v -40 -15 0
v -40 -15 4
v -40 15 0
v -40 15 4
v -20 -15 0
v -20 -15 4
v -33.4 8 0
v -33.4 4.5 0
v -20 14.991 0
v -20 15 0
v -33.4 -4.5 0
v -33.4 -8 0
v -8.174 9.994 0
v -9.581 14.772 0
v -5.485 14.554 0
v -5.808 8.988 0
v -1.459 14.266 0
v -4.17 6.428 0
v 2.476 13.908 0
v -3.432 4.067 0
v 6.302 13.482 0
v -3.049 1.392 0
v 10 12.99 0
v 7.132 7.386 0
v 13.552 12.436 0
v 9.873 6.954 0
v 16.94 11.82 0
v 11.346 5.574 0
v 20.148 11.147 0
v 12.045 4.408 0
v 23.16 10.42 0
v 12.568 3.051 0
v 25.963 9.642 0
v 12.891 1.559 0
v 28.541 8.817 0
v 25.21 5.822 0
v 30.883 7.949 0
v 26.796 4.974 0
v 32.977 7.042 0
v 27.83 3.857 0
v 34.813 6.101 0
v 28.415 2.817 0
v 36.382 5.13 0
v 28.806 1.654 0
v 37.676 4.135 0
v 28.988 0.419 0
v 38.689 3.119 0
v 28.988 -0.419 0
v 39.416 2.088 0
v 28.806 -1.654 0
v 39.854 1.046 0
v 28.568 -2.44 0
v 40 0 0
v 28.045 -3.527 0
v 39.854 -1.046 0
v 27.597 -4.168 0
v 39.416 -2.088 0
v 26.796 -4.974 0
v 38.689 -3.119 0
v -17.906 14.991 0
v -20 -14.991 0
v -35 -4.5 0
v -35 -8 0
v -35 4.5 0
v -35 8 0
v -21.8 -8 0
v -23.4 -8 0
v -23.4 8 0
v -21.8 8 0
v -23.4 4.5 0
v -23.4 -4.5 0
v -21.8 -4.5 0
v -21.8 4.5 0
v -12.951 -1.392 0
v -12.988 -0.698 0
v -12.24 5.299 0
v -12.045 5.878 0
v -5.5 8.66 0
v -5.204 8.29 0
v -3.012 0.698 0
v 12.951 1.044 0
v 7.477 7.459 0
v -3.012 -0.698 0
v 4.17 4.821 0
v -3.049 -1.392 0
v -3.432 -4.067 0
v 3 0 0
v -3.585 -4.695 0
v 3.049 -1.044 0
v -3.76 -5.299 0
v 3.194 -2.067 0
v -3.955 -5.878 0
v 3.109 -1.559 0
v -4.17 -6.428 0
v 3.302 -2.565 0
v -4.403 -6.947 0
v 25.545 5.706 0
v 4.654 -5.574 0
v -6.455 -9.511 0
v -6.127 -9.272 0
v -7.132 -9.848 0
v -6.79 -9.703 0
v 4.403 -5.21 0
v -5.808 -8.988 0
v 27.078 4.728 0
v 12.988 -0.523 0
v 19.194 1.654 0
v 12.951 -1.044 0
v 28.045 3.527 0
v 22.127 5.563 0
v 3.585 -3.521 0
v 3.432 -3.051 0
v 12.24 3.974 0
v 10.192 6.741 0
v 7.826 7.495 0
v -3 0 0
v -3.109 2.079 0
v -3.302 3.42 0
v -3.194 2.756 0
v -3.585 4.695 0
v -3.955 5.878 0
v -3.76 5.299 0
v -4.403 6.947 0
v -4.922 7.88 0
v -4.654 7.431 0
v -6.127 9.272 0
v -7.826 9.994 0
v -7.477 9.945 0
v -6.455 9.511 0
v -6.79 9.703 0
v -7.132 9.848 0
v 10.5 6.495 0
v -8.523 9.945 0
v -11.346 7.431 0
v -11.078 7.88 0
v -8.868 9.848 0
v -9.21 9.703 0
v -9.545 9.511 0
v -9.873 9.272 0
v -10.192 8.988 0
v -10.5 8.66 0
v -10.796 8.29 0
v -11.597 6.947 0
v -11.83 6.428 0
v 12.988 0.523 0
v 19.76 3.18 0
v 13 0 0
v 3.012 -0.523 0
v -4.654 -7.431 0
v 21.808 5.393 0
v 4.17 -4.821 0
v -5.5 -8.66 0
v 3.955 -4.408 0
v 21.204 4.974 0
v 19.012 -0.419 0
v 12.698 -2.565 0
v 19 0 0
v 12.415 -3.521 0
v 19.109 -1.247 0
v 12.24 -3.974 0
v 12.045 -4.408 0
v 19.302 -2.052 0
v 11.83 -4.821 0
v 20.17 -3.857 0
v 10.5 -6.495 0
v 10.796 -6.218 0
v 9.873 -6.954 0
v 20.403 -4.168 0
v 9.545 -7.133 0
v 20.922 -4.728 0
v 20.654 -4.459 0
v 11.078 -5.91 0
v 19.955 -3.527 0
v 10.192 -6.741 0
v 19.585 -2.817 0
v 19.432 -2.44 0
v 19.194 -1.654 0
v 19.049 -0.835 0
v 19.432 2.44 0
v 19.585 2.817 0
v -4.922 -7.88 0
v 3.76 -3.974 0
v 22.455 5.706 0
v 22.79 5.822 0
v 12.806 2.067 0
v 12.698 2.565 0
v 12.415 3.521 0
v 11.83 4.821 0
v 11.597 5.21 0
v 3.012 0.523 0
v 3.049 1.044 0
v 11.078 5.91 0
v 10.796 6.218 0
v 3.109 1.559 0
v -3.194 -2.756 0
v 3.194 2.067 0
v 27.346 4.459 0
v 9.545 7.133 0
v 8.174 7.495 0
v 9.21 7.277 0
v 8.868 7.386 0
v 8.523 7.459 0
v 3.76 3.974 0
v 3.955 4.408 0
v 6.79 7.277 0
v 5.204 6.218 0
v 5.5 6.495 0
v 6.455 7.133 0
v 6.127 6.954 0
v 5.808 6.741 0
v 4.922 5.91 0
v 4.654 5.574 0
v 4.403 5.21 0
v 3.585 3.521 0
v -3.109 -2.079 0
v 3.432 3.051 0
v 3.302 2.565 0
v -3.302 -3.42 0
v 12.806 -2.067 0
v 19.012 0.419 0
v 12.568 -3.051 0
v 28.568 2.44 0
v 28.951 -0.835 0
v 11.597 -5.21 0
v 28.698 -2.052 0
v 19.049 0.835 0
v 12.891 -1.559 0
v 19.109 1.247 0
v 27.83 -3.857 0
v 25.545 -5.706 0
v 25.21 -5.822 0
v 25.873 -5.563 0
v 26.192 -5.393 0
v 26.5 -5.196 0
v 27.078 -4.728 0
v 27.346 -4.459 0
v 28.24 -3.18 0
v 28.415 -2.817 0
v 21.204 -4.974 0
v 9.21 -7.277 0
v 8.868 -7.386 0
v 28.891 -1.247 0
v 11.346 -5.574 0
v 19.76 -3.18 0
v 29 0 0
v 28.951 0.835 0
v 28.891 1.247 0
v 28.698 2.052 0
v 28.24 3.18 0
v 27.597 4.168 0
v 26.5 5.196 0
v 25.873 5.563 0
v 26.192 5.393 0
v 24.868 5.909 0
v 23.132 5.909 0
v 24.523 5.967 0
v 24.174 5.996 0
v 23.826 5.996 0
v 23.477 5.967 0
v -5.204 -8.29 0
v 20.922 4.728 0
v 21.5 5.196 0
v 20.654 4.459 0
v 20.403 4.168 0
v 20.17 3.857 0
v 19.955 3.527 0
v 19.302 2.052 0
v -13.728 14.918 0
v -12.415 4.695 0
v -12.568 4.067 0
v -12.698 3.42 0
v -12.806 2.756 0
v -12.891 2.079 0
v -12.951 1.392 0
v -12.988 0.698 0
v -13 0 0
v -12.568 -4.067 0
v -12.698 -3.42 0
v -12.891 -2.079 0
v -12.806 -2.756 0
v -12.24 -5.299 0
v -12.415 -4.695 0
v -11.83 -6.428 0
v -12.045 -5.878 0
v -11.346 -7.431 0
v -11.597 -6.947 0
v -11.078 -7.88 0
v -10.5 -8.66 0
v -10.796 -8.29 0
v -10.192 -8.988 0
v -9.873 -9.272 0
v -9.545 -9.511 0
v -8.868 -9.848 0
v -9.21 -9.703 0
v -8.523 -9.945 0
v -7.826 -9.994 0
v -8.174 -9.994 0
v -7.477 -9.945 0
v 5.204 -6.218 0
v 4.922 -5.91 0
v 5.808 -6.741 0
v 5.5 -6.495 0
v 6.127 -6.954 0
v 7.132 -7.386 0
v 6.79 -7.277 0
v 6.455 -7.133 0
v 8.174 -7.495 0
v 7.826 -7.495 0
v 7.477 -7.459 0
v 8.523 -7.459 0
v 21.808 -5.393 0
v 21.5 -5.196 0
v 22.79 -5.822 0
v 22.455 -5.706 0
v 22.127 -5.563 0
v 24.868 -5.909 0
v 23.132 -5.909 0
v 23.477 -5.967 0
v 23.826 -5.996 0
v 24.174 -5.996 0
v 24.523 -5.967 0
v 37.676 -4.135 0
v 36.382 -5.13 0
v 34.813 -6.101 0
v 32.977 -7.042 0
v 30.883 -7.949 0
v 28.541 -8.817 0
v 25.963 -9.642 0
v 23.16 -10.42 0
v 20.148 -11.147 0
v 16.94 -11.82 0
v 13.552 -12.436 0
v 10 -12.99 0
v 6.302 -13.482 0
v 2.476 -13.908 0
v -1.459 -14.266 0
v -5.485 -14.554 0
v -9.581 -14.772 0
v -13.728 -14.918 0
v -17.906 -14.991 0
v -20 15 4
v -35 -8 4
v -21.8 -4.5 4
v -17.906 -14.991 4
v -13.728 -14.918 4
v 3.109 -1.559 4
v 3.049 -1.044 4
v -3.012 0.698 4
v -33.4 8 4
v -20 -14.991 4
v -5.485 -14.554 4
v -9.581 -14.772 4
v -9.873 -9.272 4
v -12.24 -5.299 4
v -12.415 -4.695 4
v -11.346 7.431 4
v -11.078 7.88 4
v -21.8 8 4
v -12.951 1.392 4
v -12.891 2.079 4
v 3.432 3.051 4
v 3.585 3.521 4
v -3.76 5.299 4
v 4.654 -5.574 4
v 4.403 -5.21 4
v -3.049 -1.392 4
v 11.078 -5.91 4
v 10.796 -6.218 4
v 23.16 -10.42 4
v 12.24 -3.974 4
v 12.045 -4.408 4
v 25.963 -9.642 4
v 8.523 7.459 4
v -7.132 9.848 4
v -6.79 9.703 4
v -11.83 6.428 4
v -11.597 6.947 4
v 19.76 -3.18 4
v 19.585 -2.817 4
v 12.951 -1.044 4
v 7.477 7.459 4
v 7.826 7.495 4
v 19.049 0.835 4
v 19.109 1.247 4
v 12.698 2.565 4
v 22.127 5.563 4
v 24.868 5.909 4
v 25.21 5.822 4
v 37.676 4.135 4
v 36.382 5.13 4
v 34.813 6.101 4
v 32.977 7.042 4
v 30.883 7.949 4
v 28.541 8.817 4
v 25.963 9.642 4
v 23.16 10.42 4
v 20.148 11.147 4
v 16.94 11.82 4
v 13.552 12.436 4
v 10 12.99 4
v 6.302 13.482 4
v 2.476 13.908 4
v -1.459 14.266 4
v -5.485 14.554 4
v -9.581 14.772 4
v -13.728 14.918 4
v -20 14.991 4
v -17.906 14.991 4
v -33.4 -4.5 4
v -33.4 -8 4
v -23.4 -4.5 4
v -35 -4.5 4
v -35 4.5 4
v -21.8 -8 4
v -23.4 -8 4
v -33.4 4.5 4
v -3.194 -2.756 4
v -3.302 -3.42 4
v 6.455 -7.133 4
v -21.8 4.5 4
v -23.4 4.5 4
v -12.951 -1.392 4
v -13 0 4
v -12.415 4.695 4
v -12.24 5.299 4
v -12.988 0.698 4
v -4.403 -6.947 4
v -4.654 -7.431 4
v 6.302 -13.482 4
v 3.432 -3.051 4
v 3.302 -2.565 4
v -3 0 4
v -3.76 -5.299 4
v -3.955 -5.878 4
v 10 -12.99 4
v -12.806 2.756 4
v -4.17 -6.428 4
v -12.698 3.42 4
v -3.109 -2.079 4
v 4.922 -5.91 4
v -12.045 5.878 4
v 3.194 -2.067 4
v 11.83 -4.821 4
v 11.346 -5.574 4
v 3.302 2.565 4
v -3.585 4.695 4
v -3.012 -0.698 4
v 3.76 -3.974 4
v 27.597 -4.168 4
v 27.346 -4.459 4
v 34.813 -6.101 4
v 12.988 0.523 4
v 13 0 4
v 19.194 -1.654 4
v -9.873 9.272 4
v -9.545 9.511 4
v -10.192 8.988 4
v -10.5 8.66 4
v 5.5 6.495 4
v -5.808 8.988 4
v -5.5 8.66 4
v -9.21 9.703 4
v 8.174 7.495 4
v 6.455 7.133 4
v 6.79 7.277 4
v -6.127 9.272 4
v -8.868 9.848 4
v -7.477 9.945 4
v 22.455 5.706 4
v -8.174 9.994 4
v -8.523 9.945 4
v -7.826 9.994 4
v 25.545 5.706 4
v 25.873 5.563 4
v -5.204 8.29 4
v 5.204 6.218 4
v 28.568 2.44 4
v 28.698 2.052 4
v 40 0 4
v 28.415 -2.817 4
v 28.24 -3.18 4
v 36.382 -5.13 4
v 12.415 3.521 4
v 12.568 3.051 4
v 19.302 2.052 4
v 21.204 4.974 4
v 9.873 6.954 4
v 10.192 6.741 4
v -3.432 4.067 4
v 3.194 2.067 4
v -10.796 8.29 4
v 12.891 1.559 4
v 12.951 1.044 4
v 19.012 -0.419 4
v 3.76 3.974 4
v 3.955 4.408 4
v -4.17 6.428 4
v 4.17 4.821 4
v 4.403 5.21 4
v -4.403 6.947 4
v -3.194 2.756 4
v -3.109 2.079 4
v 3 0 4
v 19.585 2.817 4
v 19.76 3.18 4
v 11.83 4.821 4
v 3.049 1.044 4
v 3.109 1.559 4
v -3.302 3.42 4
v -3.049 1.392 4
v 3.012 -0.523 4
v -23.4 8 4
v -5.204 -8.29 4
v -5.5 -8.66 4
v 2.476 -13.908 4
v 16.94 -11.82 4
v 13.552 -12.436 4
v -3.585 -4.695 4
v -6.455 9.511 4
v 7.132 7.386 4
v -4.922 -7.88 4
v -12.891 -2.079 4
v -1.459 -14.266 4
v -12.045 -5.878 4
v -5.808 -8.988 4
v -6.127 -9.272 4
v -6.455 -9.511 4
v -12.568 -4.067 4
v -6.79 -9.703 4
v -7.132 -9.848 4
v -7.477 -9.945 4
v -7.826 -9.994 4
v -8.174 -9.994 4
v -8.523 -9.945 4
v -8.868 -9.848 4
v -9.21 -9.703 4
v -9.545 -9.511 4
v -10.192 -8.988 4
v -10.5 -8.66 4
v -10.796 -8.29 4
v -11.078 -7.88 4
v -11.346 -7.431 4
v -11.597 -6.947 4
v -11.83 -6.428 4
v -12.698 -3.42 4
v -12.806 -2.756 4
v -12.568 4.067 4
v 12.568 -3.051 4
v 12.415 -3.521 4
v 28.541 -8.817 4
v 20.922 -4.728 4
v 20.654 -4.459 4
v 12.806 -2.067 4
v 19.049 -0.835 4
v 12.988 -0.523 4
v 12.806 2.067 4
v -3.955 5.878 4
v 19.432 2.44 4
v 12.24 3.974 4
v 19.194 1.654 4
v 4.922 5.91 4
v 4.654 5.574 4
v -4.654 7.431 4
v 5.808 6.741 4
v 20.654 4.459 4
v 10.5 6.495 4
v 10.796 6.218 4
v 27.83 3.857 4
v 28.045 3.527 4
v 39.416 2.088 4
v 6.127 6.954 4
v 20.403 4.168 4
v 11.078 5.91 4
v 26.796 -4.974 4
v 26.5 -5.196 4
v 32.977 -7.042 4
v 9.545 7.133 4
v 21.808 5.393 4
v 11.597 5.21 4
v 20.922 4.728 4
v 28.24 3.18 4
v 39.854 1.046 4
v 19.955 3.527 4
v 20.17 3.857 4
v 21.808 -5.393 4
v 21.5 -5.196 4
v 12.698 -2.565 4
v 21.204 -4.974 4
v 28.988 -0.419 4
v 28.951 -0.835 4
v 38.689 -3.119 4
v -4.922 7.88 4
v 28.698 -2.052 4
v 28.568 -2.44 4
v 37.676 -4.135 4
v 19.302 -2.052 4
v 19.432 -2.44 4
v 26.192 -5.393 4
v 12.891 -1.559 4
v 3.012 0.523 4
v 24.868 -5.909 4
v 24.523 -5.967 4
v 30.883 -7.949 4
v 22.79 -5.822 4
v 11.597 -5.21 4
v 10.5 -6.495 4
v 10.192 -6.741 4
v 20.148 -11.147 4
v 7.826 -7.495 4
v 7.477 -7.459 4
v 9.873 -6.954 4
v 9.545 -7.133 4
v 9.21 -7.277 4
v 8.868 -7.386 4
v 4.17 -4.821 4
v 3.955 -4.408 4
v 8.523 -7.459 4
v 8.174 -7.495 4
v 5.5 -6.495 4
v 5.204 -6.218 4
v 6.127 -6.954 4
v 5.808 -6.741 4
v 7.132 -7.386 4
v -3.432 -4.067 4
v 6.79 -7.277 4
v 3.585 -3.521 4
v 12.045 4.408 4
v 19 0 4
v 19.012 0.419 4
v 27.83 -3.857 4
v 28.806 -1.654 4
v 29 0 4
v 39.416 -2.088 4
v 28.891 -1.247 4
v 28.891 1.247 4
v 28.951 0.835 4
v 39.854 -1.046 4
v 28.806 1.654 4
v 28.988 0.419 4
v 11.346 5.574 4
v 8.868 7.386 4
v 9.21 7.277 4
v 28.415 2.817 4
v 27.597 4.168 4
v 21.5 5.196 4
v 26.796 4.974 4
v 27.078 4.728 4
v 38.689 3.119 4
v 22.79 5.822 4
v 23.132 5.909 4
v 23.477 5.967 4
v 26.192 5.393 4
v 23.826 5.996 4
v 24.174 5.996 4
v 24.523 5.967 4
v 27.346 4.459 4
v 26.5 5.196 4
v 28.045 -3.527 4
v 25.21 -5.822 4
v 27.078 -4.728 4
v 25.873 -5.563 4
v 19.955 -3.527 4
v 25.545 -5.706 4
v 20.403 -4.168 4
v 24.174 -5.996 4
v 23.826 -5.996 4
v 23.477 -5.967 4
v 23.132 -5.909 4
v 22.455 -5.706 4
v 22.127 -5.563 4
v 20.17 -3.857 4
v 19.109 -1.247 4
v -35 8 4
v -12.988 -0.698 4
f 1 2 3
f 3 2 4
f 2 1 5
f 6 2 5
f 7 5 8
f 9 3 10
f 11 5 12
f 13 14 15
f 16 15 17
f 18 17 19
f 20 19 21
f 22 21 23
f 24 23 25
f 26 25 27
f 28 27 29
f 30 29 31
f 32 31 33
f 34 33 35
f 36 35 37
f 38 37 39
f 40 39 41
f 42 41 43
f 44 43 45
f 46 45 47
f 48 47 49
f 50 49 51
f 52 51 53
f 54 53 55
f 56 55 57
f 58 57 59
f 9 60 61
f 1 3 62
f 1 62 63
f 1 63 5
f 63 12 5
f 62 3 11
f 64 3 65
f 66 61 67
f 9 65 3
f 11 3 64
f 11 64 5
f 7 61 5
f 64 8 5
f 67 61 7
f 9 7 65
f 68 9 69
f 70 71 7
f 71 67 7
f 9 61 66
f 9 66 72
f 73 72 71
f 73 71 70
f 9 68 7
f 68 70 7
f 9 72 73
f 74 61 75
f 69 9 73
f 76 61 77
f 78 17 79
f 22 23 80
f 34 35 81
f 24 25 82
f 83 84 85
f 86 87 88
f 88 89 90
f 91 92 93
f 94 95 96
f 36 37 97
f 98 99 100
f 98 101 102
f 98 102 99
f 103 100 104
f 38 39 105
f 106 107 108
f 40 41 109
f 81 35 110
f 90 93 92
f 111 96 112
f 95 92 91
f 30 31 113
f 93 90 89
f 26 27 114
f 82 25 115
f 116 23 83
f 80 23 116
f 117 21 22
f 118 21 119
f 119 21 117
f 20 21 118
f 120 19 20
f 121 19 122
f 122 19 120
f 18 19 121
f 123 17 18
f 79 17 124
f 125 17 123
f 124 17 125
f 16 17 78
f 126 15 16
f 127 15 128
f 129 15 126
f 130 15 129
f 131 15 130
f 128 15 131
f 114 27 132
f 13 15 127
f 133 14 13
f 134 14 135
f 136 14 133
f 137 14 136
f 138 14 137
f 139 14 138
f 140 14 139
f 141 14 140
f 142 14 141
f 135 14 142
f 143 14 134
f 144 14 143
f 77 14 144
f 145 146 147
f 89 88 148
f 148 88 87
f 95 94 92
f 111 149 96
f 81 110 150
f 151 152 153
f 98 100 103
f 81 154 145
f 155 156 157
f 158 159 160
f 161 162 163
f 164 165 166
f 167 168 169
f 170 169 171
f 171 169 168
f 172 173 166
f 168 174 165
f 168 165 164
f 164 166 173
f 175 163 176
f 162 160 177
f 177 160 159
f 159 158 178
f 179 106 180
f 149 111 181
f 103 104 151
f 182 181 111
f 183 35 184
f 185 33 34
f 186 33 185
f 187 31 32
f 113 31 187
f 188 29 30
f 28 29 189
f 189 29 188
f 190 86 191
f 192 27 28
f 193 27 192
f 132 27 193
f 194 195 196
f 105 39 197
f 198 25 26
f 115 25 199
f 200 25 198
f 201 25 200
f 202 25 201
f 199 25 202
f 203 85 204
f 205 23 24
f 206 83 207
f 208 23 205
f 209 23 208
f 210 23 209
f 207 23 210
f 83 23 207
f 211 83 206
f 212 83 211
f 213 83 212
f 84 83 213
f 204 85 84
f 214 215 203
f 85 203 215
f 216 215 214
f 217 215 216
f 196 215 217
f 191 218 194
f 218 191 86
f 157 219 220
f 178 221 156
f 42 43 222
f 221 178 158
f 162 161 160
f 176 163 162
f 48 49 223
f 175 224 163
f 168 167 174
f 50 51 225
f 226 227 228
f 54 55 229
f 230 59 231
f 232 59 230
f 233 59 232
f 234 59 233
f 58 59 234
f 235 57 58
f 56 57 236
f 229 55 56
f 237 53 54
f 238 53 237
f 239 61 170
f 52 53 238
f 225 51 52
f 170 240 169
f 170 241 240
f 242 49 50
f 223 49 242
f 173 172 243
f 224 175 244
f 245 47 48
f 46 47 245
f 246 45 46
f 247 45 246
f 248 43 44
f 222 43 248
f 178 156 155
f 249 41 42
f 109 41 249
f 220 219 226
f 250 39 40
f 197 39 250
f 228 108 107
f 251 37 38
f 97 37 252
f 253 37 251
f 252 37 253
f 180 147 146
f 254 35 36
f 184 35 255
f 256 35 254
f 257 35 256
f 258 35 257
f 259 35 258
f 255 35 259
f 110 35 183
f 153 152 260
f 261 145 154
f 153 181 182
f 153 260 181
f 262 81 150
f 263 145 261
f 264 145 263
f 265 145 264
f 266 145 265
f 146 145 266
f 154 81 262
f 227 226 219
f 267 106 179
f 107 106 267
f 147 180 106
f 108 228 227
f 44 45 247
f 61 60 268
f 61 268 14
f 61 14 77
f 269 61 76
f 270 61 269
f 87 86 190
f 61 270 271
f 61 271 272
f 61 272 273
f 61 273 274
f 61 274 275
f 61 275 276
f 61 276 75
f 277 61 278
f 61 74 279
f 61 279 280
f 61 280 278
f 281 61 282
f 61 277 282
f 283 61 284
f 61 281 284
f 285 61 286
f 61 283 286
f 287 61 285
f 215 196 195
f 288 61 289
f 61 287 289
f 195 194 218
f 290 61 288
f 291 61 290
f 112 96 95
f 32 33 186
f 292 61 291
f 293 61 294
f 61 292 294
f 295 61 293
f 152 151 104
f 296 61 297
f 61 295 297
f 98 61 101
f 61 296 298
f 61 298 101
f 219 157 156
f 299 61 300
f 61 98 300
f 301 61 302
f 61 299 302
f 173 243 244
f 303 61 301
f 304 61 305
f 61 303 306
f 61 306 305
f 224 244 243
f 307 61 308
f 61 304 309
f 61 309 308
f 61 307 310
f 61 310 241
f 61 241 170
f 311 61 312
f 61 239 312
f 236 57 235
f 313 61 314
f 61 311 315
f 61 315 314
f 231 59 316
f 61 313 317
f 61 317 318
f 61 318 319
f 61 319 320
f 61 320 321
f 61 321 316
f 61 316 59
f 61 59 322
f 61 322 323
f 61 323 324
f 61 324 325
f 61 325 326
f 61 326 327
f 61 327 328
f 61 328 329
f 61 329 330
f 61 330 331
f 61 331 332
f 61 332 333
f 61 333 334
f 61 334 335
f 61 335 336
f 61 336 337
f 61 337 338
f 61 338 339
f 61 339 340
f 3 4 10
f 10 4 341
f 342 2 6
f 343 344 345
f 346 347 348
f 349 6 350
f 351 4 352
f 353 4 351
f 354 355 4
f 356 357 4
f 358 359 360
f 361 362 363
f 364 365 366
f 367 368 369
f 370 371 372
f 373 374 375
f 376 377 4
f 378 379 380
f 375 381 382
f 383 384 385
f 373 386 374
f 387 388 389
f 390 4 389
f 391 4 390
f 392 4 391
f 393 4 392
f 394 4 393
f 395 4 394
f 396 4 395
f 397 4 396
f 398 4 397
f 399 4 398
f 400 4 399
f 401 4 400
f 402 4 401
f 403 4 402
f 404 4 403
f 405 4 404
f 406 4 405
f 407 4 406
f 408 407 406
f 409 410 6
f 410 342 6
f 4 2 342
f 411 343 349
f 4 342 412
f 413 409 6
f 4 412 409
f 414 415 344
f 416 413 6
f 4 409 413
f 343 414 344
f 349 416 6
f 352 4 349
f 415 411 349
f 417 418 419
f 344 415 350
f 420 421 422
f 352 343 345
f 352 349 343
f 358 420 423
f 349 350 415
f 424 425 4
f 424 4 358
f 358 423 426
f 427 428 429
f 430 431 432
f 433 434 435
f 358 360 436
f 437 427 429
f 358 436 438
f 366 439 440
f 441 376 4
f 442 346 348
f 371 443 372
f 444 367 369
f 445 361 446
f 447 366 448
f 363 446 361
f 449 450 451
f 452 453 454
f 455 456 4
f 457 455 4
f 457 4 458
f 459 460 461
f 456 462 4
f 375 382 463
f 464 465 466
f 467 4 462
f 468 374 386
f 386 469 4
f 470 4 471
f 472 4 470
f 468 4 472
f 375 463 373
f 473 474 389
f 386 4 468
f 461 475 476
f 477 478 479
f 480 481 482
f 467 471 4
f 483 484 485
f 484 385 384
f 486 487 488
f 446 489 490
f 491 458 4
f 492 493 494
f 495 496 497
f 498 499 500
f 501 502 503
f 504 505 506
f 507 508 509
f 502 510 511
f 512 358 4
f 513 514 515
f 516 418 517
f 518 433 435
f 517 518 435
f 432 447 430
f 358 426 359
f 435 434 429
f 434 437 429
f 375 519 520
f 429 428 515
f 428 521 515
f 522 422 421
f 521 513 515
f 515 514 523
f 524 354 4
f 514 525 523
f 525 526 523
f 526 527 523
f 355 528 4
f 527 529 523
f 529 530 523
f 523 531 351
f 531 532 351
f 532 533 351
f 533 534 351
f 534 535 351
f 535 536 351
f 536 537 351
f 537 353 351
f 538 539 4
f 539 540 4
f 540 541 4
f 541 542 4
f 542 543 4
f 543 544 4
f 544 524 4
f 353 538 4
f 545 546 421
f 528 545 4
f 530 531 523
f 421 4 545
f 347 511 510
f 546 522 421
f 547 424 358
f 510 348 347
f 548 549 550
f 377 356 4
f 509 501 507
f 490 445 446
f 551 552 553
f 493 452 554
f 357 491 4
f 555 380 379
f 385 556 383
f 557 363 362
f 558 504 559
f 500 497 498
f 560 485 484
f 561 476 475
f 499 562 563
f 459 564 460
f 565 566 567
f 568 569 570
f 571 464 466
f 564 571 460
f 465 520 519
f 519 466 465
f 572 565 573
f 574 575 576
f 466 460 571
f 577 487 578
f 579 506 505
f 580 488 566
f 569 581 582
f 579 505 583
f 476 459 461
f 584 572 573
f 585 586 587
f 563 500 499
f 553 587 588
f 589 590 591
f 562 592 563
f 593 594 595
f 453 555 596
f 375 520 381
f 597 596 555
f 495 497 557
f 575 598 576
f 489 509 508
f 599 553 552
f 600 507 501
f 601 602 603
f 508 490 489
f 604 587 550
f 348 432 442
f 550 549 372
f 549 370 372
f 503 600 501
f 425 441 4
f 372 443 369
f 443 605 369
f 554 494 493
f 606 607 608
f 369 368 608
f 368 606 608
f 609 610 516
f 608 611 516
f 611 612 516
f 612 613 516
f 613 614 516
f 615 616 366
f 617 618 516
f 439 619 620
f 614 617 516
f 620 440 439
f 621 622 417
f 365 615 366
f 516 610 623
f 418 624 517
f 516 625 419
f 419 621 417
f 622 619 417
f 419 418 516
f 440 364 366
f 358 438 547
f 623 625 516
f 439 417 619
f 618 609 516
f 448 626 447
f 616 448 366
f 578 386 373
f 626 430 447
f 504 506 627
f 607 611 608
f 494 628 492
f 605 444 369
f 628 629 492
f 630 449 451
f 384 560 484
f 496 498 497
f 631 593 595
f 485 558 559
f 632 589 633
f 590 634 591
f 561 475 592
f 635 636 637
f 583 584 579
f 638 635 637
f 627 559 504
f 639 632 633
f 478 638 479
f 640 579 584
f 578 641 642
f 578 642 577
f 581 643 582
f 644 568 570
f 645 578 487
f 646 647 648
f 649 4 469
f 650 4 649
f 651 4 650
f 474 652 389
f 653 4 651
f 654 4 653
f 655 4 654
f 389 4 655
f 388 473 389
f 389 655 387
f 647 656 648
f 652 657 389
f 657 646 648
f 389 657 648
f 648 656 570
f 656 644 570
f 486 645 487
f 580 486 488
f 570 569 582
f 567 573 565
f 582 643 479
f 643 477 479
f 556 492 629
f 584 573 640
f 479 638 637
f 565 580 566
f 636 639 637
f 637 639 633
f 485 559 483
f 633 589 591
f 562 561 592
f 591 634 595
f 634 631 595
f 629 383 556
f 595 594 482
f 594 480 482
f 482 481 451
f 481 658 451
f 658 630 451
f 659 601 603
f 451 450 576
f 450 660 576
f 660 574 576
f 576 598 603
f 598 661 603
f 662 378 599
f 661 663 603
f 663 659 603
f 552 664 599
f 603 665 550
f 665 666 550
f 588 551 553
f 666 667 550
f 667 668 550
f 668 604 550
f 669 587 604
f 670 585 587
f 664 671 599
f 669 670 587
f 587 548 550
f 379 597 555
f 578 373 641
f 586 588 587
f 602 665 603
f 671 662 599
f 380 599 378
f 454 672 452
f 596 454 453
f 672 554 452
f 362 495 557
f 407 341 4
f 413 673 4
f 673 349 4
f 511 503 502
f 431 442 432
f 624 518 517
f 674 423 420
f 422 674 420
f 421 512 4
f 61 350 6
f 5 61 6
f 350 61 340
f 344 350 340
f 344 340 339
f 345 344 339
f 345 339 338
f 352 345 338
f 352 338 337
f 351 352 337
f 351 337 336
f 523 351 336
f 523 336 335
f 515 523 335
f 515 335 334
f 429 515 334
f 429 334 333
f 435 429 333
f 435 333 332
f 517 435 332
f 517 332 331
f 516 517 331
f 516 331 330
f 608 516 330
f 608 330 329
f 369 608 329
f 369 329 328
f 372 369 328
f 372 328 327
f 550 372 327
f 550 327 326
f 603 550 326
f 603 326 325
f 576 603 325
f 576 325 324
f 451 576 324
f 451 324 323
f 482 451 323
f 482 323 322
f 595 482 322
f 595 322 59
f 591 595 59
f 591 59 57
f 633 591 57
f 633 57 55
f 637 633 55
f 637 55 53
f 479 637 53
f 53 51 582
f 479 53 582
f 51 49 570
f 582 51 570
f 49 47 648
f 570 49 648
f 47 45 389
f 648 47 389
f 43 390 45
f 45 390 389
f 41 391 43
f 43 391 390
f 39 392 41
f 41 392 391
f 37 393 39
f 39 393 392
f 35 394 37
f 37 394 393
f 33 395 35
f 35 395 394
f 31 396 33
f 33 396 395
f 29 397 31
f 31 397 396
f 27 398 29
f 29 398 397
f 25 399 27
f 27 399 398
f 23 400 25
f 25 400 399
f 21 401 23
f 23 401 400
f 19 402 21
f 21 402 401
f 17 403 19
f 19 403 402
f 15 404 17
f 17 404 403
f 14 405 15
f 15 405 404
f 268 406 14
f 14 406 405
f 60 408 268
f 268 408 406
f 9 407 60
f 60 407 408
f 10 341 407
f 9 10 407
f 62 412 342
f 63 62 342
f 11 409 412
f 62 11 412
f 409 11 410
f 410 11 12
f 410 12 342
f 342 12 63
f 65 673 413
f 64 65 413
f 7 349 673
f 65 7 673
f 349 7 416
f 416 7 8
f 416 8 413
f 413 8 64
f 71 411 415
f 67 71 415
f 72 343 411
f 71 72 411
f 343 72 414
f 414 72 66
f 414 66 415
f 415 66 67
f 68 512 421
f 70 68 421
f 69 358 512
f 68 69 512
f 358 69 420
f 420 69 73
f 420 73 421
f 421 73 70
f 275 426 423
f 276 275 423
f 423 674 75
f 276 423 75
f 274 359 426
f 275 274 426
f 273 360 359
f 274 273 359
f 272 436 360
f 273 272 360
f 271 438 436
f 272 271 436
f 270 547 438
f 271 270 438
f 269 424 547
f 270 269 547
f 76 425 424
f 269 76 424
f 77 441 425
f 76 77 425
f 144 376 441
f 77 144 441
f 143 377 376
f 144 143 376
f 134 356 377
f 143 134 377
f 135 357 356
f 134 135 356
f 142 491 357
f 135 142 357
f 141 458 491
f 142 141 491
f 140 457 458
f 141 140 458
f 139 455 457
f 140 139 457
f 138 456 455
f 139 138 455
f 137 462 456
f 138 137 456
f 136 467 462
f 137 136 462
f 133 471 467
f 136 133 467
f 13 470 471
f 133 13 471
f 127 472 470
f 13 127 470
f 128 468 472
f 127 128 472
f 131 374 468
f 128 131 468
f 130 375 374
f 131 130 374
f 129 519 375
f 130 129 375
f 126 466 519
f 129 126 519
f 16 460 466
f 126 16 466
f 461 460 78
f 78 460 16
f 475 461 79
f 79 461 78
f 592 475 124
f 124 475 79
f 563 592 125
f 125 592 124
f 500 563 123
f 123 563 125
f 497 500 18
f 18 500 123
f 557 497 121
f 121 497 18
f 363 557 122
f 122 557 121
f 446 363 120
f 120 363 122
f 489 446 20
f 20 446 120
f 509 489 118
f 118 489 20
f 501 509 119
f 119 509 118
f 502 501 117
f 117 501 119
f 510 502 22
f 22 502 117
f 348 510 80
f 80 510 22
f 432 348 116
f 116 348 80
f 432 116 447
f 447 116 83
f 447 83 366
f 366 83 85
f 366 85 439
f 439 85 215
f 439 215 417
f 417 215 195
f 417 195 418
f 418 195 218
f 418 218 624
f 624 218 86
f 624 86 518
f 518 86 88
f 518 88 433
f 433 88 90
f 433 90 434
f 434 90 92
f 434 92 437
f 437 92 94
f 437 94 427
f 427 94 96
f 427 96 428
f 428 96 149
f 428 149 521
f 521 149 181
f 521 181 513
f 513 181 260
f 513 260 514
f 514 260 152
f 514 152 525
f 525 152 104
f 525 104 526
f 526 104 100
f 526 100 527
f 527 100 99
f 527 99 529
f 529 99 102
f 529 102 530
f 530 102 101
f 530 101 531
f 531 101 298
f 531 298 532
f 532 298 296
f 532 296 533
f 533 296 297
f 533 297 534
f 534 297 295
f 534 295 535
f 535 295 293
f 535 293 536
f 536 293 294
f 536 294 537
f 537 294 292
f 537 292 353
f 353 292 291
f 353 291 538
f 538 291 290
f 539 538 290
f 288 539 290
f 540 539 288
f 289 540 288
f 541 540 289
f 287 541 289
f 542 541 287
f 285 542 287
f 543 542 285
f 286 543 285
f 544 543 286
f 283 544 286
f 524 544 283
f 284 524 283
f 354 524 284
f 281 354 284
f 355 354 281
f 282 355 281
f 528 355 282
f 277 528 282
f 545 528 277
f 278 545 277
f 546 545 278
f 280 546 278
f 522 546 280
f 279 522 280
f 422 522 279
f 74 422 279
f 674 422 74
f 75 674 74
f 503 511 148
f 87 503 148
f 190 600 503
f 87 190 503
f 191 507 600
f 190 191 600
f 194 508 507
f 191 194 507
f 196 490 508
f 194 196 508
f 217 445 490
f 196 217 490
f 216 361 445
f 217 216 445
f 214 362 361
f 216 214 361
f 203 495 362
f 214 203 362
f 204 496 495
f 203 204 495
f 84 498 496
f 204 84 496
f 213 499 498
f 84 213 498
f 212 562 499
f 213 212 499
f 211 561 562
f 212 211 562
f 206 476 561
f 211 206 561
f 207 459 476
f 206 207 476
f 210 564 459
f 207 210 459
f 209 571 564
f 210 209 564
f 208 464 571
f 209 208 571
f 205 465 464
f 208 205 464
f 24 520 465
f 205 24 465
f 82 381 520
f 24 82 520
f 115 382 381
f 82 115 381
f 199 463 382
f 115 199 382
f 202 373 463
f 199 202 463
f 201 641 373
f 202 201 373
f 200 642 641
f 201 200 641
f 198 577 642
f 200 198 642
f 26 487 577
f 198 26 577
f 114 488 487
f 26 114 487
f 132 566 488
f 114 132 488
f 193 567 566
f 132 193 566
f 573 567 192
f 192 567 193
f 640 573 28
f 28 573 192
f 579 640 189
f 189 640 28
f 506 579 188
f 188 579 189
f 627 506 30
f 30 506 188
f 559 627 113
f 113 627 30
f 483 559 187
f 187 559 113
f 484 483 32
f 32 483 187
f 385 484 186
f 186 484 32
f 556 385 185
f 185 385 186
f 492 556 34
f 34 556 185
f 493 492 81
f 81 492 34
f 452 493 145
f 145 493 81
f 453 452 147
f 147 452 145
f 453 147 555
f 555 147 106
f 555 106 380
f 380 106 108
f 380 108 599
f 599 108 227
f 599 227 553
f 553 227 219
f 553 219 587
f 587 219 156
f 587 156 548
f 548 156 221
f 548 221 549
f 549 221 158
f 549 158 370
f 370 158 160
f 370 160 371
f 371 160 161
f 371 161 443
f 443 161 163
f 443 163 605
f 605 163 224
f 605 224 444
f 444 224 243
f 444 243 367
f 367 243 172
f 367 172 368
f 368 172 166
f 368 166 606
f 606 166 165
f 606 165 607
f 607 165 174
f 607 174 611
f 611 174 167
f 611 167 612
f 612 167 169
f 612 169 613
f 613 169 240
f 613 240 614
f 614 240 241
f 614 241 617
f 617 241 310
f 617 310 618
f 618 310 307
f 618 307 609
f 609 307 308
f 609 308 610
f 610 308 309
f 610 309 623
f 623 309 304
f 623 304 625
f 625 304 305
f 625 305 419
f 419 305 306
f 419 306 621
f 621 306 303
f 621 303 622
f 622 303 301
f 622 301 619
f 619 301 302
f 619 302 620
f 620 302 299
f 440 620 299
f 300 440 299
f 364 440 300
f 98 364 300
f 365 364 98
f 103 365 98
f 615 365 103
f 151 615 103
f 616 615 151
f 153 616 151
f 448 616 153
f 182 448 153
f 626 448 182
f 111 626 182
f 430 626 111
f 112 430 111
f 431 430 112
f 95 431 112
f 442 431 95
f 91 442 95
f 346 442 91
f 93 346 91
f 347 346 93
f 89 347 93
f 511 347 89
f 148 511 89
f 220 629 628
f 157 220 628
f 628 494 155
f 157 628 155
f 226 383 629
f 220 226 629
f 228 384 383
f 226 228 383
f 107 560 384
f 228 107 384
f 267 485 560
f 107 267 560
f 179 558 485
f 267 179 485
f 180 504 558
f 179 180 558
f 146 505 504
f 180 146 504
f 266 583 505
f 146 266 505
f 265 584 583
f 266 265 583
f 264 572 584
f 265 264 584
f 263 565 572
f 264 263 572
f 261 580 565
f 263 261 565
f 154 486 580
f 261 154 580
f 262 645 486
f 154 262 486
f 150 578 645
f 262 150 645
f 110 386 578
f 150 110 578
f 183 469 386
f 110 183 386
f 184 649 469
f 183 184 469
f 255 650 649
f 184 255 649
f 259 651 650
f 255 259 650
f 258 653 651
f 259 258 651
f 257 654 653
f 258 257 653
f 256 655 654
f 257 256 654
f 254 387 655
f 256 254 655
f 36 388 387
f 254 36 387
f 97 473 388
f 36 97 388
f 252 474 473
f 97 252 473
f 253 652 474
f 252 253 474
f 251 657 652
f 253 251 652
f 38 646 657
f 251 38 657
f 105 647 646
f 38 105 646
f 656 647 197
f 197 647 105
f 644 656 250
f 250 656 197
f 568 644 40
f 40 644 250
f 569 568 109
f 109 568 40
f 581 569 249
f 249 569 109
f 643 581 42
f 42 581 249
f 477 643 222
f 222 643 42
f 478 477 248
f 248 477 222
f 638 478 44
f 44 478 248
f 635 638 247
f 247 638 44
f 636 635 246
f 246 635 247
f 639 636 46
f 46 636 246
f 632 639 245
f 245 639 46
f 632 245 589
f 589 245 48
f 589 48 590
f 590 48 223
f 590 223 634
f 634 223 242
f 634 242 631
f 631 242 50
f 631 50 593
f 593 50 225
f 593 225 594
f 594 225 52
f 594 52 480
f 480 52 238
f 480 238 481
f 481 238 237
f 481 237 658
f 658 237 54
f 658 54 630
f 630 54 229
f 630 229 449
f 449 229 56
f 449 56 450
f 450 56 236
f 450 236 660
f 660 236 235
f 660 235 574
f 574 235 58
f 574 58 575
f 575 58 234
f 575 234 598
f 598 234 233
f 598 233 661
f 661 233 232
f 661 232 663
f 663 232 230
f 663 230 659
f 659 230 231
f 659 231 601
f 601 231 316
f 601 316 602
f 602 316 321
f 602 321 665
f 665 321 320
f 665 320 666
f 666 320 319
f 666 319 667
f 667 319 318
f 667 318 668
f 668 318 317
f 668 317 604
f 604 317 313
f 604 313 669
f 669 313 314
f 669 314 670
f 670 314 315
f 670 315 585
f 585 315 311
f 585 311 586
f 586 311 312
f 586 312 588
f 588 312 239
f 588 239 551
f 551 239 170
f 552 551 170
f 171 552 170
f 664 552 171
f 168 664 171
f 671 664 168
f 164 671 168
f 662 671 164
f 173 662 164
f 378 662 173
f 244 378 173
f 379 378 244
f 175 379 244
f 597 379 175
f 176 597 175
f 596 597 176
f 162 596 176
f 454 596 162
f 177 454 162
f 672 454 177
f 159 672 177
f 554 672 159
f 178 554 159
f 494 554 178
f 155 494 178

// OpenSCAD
$fn = 90;

// Dimensions
height = 4;
width = 30;
length = 80;
arm_width = 10;
arm_mount_hole_length = 1.6;   // Rectangular arm mounting hole width
arm_mount_hole_width = 3.5;  // Rectangular arm mounting hole length

module main() {
    leg();
}

module leg() {
    h_center_3 = -height * 3 / 2 + height / 2;
    h3 = height * 3;

    // Translate to draw the block centered as other pieces depend on this
    difference() {
        // Base plate
        translate([-length / 2, -width / 2, 0]) {
            cube([length, width, height]);
        }

        translate([-length / 4, 0, h_center_3]) {
            difference() {
                translate([0, -width / 2, 0])
                    cube([length - length / 4, width, h3]);
                scale([length - length / 4, width / 2, 1])
                    cylinder(r=1, h=h3);
            }
        }

        // Cutouts
        translate([-length / 2, 0, h_center_3]) {
            translate([length * 0.40, 0, 0])
                scale([length * 5 / length, width / 3, 1])
                    cylinder(r = 1, h3);

            translate([length * 0.60, 0, 0])
                scale([length * 5 / length, width / 4, 1])
                    cylinder(r = 1, h3);

            translate([length * 0.80, 0, 0])
                scale([length * 5 / length, width / 5, 1])
                    cylinder(r = 1, h3);
        }

        // Mounting holes
        #translate([-length / 2 + 5, -width / 2 + 7,  h_center_3]) {
            cube([arm_mount_hole_length, arm_mount_hole_width, h3]);
            translate([arm_width + arm_mount_hole_length, 0, 0])
                cube([arm_mount_hole_length, arm_mount_hole_width, h3]);
        }

        #translate([-length / 2 + 5, width / 2 -7 - arm_mount_hole_width,  h_center_3]) {
            cube([arm_mount_hole_length, arm_mount_hole_width, h3]);
            translate([arm_width + arm_mount_hole_length, 0, 0])
                cube([arm_mount_hole_length, arm_mount_hole_width, h3]);
        }
    }
}

// Makes a cylinder with diameter the specified diameter and height
module hole(d, h) {
    cylinder(r=d / 2, h=h);
}

main();
